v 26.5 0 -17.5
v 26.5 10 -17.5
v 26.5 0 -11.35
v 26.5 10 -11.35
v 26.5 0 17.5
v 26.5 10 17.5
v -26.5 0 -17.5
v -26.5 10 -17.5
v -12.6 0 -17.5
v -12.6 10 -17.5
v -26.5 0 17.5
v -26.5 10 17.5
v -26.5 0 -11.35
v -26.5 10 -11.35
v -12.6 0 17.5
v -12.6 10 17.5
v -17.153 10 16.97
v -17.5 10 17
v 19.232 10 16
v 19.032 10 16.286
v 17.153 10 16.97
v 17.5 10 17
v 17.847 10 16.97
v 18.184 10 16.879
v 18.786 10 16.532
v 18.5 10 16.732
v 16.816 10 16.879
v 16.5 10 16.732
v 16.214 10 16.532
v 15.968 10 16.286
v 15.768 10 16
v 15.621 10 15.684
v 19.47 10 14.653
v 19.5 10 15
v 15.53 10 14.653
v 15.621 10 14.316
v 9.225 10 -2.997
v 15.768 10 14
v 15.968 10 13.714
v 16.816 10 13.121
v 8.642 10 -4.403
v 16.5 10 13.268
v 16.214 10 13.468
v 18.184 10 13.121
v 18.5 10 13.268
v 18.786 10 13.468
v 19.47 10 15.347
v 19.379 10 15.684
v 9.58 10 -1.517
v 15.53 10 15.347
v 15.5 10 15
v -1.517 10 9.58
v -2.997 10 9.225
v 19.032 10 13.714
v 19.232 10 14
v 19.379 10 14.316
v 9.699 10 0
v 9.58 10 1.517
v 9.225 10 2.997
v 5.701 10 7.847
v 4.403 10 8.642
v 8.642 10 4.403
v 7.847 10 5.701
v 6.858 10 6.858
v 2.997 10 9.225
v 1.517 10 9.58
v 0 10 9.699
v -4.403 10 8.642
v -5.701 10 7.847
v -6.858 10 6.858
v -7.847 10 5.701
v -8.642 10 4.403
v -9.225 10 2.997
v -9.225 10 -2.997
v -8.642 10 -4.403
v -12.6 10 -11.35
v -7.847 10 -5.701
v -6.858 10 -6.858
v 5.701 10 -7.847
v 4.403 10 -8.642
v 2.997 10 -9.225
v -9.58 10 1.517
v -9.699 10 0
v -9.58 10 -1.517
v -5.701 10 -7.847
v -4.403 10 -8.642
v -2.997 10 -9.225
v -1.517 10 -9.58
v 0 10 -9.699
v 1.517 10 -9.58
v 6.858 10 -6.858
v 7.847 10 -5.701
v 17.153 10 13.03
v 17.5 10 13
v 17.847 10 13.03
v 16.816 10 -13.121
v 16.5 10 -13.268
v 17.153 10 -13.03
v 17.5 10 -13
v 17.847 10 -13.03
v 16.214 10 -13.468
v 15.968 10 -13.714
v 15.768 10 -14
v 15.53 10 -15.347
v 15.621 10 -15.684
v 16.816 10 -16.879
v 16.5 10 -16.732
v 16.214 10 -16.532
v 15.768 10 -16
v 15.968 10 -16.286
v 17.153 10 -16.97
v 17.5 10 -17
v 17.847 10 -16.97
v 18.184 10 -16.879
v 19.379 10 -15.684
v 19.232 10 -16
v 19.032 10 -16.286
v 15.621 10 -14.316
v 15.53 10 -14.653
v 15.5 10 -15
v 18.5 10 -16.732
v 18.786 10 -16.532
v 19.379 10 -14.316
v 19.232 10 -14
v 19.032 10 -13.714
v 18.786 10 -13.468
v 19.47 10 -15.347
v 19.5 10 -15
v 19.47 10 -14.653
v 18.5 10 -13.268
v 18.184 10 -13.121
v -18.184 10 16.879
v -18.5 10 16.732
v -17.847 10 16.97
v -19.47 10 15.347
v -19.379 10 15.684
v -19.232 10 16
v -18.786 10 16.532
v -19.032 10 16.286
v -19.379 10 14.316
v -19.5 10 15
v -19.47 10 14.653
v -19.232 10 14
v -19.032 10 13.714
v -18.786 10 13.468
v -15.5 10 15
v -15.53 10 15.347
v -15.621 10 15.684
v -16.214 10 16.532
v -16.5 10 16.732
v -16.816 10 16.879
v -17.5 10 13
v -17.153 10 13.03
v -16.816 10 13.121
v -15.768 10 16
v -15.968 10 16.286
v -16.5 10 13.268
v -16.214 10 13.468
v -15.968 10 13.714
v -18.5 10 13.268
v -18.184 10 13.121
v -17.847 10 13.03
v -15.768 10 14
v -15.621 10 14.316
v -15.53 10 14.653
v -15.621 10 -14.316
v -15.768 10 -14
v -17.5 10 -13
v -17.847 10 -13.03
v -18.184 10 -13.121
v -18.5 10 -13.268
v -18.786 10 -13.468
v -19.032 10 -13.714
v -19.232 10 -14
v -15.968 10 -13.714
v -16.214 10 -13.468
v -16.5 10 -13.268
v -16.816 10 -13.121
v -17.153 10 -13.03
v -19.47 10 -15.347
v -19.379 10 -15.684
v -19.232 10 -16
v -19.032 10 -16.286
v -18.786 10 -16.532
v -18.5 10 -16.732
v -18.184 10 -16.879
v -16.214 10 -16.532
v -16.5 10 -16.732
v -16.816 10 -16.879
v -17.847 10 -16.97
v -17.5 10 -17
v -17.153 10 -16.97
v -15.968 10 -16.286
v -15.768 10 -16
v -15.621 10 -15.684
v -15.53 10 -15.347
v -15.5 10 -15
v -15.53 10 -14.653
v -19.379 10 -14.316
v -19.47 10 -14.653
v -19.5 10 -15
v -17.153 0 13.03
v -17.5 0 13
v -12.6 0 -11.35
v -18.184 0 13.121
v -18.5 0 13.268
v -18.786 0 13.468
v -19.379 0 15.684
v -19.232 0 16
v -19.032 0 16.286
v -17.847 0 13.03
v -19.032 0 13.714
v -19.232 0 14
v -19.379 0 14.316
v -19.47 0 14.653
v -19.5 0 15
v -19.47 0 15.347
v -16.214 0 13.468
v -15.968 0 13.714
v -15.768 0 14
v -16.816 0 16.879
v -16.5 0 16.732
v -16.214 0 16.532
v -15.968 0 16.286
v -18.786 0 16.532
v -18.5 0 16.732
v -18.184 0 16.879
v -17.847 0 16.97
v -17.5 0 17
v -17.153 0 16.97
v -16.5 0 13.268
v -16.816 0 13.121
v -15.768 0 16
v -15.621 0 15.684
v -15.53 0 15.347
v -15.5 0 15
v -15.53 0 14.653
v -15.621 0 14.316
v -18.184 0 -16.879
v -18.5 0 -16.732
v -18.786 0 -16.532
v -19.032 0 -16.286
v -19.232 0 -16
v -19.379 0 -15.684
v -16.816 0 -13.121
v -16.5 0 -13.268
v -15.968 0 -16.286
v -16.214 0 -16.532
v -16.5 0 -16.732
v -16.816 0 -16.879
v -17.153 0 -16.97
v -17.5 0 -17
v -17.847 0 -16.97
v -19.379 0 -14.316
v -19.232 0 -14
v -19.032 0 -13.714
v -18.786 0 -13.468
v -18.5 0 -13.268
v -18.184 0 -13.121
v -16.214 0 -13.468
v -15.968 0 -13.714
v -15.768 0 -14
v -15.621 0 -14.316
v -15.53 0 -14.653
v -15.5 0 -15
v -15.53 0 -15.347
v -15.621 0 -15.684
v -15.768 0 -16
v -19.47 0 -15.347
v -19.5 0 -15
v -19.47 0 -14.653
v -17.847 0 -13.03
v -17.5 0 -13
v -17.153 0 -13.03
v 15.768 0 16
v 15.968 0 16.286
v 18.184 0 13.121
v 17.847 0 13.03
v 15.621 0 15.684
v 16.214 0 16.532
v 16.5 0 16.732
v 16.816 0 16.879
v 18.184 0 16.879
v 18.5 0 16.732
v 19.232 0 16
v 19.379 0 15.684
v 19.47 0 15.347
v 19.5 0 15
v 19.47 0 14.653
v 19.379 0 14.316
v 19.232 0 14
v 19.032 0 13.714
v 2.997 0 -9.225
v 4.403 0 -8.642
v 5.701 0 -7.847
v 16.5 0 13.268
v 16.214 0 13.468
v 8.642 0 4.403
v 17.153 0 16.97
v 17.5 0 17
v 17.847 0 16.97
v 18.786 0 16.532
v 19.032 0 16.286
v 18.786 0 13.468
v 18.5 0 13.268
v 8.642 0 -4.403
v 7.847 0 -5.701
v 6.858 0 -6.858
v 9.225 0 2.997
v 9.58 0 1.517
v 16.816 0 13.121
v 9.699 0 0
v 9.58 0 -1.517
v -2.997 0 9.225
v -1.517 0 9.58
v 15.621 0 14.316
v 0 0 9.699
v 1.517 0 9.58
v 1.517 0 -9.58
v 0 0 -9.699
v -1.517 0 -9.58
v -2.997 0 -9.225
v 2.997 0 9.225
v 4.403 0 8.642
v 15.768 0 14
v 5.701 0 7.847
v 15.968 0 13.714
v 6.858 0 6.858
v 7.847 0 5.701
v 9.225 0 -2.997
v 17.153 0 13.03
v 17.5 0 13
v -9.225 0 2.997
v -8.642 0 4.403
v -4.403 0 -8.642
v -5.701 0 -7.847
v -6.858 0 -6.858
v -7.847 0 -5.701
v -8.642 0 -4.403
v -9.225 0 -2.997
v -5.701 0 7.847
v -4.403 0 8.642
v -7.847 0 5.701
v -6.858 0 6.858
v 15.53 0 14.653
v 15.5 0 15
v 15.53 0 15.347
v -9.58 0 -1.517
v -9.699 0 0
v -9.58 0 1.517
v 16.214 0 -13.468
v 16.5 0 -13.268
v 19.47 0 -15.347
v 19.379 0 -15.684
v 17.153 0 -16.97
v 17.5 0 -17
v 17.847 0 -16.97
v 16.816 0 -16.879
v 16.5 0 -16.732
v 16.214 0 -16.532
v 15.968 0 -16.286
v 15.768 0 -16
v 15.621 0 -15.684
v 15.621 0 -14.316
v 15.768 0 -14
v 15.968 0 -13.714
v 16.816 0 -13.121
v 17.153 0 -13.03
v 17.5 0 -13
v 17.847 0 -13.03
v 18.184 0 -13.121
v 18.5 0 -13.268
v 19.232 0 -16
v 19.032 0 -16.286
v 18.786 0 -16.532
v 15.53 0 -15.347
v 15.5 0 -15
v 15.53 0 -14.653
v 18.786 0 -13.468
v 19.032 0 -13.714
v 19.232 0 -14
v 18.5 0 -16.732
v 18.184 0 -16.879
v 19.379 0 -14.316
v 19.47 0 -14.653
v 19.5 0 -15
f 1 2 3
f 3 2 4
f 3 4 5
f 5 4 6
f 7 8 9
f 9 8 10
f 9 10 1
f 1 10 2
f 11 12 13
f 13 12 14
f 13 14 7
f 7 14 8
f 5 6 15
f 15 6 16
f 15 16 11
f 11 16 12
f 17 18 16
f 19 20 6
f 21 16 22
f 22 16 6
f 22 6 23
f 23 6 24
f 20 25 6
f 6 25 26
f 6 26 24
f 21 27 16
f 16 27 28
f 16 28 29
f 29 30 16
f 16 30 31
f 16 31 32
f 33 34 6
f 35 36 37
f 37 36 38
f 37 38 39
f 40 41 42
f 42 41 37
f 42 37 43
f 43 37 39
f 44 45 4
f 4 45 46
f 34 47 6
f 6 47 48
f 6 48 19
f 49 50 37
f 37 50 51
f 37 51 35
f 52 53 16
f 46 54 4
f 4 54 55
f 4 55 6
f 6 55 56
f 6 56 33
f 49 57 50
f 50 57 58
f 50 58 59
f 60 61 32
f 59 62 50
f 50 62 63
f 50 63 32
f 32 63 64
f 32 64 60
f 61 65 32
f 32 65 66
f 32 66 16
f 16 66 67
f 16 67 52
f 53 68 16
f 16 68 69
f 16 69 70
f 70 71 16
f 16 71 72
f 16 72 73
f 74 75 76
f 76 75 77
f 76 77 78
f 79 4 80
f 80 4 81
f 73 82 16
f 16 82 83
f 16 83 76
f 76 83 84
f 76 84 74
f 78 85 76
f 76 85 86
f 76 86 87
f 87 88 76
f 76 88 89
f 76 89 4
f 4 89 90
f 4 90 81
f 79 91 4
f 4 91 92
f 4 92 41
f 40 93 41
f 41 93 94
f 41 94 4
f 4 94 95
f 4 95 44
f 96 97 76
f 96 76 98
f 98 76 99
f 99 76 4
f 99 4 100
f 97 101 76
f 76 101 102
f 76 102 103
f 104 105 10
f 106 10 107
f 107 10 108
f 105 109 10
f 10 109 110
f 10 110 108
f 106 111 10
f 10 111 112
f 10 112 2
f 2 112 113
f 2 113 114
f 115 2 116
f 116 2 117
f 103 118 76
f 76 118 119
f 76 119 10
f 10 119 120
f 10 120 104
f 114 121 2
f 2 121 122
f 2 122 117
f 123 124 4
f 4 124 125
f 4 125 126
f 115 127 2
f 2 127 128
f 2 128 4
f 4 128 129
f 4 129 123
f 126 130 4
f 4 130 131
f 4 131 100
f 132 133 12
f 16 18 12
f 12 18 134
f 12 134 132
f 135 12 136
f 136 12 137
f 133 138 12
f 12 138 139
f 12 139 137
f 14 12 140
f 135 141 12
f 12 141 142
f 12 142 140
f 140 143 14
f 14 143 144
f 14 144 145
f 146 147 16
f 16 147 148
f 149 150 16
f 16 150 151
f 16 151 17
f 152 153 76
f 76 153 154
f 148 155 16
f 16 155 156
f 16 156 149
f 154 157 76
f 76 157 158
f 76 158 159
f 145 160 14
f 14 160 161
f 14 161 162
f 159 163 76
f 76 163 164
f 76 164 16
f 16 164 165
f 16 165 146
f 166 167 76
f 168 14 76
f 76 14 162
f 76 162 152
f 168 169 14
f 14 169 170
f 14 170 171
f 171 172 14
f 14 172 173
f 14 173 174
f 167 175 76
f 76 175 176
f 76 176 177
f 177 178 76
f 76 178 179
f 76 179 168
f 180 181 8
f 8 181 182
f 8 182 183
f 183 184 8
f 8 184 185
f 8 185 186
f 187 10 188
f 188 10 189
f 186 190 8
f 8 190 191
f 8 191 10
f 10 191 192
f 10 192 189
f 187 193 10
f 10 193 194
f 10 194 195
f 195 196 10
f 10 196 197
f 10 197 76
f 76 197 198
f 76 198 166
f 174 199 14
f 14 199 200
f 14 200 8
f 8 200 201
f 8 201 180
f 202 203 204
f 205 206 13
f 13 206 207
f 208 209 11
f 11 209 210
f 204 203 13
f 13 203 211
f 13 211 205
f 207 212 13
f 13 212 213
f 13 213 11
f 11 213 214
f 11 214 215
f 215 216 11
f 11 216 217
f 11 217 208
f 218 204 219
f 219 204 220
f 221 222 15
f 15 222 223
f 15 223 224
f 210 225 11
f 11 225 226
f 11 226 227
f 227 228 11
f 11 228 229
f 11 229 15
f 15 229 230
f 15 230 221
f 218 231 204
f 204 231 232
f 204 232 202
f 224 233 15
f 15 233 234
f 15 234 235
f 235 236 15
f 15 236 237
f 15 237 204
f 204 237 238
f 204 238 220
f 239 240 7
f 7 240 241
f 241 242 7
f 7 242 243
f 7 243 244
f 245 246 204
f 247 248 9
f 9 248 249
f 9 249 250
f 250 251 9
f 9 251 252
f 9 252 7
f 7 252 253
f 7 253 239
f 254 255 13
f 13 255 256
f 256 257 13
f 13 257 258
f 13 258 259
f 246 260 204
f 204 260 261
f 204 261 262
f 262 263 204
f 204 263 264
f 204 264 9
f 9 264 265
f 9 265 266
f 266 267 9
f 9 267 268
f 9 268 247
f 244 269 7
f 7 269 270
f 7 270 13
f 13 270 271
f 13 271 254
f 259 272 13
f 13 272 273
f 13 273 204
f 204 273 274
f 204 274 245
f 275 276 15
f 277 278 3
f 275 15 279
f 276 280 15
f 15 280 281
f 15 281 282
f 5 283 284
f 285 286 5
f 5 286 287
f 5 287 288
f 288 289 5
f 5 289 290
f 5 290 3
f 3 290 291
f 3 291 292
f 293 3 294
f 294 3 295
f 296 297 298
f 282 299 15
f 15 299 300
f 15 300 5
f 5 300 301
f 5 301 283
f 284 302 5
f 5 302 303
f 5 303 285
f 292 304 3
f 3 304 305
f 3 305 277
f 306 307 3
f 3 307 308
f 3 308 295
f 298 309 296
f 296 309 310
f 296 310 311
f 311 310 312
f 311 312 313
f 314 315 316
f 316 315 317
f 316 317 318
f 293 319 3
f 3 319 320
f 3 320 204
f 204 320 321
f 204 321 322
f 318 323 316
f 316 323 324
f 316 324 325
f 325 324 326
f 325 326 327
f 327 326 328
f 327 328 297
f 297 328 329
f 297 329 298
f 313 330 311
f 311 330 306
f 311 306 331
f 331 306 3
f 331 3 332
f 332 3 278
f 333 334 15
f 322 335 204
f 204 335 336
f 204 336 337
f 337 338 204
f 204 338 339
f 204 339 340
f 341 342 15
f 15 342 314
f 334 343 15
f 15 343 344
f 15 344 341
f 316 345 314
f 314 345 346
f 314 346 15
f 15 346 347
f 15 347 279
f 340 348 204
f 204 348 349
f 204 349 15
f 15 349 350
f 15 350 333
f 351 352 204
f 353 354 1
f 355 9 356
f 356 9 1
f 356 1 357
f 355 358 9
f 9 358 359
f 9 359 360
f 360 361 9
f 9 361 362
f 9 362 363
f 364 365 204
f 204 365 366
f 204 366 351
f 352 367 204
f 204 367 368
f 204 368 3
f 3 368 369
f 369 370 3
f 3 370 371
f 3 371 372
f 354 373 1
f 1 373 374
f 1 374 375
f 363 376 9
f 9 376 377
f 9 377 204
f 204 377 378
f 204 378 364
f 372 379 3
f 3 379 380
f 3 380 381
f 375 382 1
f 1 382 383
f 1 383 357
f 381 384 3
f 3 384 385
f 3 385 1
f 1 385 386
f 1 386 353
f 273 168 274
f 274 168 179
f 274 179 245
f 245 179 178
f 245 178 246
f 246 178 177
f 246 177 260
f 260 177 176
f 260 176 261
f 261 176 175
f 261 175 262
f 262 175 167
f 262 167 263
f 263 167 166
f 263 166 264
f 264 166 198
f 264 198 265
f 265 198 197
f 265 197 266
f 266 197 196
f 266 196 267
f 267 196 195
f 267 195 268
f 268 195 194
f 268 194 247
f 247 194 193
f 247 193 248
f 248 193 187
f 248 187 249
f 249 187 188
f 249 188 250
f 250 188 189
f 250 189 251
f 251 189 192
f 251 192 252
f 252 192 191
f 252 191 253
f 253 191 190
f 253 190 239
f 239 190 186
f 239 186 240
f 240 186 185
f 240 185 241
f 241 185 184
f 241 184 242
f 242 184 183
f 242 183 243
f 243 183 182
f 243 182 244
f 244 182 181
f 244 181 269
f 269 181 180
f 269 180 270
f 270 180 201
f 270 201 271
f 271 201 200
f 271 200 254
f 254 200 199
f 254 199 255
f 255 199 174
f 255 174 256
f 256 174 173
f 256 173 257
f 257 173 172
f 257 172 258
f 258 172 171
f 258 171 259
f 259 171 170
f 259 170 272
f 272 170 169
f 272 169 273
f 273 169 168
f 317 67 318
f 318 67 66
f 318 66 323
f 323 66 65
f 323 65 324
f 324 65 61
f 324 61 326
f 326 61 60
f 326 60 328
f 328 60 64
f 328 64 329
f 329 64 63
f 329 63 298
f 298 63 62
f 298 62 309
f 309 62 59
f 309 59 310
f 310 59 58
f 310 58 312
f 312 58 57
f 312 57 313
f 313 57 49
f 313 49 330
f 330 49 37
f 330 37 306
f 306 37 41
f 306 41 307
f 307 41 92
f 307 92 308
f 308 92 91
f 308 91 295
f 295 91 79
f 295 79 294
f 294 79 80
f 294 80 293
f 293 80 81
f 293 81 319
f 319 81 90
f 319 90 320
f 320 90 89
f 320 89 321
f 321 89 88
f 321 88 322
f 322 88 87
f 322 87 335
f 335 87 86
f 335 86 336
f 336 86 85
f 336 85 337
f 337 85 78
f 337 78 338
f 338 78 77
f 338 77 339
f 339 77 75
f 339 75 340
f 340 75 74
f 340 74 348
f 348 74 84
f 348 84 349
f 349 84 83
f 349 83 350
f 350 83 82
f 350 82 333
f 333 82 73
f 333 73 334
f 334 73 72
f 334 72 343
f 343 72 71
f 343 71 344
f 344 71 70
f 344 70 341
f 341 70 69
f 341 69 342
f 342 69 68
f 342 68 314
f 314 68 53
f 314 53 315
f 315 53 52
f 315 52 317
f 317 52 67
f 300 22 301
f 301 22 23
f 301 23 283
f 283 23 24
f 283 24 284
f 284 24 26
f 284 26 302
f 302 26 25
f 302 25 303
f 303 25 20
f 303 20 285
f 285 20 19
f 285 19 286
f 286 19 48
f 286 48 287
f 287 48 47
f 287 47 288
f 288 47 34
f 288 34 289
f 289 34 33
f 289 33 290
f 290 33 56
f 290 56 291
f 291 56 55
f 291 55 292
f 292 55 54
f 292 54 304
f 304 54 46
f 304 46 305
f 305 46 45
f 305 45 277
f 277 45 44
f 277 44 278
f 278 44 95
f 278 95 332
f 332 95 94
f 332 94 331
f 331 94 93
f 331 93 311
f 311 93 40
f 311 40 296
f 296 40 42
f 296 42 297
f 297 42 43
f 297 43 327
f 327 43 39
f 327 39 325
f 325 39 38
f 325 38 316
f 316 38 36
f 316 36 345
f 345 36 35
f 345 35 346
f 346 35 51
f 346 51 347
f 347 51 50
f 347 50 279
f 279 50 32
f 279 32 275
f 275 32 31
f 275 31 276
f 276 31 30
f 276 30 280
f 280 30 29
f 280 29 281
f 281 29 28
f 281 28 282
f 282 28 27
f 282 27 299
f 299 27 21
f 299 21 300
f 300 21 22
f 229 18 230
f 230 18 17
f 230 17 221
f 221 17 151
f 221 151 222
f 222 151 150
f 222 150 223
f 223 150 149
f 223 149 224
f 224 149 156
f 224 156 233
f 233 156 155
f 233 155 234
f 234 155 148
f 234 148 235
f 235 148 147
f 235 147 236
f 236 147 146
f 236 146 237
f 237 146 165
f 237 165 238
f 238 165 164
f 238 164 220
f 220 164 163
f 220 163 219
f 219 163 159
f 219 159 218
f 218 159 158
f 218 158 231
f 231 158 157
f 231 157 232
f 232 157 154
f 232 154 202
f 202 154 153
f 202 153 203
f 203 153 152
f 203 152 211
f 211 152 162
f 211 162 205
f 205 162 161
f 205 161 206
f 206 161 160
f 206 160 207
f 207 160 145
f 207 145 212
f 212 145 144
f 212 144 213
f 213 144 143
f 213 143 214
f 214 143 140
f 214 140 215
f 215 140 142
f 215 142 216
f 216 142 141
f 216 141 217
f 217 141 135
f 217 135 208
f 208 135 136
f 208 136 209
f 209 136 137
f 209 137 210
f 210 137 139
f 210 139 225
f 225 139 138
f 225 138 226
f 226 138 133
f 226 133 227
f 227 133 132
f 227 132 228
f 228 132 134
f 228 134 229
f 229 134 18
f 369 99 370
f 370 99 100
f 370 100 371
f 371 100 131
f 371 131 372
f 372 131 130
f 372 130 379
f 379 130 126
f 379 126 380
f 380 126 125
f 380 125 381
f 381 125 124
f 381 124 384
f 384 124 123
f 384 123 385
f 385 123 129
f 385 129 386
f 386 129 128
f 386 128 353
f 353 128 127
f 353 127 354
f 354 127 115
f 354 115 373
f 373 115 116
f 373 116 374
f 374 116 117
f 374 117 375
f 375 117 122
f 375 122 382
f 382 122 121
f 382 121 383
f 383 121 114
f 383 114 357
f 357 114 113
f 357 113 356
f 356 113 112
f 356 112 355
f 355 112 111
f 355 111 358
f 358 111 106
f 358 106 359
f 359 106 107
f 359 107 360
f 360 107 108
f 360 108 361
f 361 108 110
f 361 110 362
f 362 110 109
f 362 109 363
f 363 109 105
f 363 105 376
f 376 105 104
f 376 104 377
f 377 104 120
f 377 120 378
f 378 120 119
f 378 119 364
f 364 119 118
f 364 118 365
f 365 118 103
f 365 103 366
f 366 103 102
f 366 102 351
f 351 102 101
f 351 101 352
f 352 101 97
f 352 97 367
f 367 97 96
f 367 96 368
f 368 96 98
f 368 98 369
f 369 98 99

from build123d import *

# Parameters (mm, degrees)
SKETCH1_W           = 53
SKETCH1_H           = 35
BOSS_EXTRUDE1_DEPTH = 10
SKETCH2_R           = 2
SKETCH2_R_2         = 9.699233374
CUT_EXTRUDE1_DEPTH  = 11


with BuildPart() as part:
    # Sketch1 → Boss-Extrude1 (new body)
    with BuildSketch(Plane(origin=(0, 0, 0), x_dir=(1, 0, 0), z_dir=(0, 1, 0))):
        Rectangle(SKETCH1_W, SKETCH1_H)
    extrude(amount=BOSS_EXTRUDE1_DEPTH)

    # Sketch2 → Cut-Extrude1 (cut, through all)
    with BuildSketch(Plane(origin=(0, 10, 0), x_dir=(1, 0, 0), z_dir=(0, 1, 0))):
        with Locations((-17.5, 15)):
            Circle(SKETCH2_R)
        with Locations((17.5, 15)):
            Circle(SKETCH2_R)
        with Locations((-17.5, -15)):
            Circle(SKETCH2_R)
        with Locations((17.5, -15)):
            Circle(SKETCH2_R)
        Circle(SKETCH2_R_2)
    extrude(amount=-CUT_EXTRUDE1_DEPTH, mode=Mode.SUBTRACT)


solid = part.part
